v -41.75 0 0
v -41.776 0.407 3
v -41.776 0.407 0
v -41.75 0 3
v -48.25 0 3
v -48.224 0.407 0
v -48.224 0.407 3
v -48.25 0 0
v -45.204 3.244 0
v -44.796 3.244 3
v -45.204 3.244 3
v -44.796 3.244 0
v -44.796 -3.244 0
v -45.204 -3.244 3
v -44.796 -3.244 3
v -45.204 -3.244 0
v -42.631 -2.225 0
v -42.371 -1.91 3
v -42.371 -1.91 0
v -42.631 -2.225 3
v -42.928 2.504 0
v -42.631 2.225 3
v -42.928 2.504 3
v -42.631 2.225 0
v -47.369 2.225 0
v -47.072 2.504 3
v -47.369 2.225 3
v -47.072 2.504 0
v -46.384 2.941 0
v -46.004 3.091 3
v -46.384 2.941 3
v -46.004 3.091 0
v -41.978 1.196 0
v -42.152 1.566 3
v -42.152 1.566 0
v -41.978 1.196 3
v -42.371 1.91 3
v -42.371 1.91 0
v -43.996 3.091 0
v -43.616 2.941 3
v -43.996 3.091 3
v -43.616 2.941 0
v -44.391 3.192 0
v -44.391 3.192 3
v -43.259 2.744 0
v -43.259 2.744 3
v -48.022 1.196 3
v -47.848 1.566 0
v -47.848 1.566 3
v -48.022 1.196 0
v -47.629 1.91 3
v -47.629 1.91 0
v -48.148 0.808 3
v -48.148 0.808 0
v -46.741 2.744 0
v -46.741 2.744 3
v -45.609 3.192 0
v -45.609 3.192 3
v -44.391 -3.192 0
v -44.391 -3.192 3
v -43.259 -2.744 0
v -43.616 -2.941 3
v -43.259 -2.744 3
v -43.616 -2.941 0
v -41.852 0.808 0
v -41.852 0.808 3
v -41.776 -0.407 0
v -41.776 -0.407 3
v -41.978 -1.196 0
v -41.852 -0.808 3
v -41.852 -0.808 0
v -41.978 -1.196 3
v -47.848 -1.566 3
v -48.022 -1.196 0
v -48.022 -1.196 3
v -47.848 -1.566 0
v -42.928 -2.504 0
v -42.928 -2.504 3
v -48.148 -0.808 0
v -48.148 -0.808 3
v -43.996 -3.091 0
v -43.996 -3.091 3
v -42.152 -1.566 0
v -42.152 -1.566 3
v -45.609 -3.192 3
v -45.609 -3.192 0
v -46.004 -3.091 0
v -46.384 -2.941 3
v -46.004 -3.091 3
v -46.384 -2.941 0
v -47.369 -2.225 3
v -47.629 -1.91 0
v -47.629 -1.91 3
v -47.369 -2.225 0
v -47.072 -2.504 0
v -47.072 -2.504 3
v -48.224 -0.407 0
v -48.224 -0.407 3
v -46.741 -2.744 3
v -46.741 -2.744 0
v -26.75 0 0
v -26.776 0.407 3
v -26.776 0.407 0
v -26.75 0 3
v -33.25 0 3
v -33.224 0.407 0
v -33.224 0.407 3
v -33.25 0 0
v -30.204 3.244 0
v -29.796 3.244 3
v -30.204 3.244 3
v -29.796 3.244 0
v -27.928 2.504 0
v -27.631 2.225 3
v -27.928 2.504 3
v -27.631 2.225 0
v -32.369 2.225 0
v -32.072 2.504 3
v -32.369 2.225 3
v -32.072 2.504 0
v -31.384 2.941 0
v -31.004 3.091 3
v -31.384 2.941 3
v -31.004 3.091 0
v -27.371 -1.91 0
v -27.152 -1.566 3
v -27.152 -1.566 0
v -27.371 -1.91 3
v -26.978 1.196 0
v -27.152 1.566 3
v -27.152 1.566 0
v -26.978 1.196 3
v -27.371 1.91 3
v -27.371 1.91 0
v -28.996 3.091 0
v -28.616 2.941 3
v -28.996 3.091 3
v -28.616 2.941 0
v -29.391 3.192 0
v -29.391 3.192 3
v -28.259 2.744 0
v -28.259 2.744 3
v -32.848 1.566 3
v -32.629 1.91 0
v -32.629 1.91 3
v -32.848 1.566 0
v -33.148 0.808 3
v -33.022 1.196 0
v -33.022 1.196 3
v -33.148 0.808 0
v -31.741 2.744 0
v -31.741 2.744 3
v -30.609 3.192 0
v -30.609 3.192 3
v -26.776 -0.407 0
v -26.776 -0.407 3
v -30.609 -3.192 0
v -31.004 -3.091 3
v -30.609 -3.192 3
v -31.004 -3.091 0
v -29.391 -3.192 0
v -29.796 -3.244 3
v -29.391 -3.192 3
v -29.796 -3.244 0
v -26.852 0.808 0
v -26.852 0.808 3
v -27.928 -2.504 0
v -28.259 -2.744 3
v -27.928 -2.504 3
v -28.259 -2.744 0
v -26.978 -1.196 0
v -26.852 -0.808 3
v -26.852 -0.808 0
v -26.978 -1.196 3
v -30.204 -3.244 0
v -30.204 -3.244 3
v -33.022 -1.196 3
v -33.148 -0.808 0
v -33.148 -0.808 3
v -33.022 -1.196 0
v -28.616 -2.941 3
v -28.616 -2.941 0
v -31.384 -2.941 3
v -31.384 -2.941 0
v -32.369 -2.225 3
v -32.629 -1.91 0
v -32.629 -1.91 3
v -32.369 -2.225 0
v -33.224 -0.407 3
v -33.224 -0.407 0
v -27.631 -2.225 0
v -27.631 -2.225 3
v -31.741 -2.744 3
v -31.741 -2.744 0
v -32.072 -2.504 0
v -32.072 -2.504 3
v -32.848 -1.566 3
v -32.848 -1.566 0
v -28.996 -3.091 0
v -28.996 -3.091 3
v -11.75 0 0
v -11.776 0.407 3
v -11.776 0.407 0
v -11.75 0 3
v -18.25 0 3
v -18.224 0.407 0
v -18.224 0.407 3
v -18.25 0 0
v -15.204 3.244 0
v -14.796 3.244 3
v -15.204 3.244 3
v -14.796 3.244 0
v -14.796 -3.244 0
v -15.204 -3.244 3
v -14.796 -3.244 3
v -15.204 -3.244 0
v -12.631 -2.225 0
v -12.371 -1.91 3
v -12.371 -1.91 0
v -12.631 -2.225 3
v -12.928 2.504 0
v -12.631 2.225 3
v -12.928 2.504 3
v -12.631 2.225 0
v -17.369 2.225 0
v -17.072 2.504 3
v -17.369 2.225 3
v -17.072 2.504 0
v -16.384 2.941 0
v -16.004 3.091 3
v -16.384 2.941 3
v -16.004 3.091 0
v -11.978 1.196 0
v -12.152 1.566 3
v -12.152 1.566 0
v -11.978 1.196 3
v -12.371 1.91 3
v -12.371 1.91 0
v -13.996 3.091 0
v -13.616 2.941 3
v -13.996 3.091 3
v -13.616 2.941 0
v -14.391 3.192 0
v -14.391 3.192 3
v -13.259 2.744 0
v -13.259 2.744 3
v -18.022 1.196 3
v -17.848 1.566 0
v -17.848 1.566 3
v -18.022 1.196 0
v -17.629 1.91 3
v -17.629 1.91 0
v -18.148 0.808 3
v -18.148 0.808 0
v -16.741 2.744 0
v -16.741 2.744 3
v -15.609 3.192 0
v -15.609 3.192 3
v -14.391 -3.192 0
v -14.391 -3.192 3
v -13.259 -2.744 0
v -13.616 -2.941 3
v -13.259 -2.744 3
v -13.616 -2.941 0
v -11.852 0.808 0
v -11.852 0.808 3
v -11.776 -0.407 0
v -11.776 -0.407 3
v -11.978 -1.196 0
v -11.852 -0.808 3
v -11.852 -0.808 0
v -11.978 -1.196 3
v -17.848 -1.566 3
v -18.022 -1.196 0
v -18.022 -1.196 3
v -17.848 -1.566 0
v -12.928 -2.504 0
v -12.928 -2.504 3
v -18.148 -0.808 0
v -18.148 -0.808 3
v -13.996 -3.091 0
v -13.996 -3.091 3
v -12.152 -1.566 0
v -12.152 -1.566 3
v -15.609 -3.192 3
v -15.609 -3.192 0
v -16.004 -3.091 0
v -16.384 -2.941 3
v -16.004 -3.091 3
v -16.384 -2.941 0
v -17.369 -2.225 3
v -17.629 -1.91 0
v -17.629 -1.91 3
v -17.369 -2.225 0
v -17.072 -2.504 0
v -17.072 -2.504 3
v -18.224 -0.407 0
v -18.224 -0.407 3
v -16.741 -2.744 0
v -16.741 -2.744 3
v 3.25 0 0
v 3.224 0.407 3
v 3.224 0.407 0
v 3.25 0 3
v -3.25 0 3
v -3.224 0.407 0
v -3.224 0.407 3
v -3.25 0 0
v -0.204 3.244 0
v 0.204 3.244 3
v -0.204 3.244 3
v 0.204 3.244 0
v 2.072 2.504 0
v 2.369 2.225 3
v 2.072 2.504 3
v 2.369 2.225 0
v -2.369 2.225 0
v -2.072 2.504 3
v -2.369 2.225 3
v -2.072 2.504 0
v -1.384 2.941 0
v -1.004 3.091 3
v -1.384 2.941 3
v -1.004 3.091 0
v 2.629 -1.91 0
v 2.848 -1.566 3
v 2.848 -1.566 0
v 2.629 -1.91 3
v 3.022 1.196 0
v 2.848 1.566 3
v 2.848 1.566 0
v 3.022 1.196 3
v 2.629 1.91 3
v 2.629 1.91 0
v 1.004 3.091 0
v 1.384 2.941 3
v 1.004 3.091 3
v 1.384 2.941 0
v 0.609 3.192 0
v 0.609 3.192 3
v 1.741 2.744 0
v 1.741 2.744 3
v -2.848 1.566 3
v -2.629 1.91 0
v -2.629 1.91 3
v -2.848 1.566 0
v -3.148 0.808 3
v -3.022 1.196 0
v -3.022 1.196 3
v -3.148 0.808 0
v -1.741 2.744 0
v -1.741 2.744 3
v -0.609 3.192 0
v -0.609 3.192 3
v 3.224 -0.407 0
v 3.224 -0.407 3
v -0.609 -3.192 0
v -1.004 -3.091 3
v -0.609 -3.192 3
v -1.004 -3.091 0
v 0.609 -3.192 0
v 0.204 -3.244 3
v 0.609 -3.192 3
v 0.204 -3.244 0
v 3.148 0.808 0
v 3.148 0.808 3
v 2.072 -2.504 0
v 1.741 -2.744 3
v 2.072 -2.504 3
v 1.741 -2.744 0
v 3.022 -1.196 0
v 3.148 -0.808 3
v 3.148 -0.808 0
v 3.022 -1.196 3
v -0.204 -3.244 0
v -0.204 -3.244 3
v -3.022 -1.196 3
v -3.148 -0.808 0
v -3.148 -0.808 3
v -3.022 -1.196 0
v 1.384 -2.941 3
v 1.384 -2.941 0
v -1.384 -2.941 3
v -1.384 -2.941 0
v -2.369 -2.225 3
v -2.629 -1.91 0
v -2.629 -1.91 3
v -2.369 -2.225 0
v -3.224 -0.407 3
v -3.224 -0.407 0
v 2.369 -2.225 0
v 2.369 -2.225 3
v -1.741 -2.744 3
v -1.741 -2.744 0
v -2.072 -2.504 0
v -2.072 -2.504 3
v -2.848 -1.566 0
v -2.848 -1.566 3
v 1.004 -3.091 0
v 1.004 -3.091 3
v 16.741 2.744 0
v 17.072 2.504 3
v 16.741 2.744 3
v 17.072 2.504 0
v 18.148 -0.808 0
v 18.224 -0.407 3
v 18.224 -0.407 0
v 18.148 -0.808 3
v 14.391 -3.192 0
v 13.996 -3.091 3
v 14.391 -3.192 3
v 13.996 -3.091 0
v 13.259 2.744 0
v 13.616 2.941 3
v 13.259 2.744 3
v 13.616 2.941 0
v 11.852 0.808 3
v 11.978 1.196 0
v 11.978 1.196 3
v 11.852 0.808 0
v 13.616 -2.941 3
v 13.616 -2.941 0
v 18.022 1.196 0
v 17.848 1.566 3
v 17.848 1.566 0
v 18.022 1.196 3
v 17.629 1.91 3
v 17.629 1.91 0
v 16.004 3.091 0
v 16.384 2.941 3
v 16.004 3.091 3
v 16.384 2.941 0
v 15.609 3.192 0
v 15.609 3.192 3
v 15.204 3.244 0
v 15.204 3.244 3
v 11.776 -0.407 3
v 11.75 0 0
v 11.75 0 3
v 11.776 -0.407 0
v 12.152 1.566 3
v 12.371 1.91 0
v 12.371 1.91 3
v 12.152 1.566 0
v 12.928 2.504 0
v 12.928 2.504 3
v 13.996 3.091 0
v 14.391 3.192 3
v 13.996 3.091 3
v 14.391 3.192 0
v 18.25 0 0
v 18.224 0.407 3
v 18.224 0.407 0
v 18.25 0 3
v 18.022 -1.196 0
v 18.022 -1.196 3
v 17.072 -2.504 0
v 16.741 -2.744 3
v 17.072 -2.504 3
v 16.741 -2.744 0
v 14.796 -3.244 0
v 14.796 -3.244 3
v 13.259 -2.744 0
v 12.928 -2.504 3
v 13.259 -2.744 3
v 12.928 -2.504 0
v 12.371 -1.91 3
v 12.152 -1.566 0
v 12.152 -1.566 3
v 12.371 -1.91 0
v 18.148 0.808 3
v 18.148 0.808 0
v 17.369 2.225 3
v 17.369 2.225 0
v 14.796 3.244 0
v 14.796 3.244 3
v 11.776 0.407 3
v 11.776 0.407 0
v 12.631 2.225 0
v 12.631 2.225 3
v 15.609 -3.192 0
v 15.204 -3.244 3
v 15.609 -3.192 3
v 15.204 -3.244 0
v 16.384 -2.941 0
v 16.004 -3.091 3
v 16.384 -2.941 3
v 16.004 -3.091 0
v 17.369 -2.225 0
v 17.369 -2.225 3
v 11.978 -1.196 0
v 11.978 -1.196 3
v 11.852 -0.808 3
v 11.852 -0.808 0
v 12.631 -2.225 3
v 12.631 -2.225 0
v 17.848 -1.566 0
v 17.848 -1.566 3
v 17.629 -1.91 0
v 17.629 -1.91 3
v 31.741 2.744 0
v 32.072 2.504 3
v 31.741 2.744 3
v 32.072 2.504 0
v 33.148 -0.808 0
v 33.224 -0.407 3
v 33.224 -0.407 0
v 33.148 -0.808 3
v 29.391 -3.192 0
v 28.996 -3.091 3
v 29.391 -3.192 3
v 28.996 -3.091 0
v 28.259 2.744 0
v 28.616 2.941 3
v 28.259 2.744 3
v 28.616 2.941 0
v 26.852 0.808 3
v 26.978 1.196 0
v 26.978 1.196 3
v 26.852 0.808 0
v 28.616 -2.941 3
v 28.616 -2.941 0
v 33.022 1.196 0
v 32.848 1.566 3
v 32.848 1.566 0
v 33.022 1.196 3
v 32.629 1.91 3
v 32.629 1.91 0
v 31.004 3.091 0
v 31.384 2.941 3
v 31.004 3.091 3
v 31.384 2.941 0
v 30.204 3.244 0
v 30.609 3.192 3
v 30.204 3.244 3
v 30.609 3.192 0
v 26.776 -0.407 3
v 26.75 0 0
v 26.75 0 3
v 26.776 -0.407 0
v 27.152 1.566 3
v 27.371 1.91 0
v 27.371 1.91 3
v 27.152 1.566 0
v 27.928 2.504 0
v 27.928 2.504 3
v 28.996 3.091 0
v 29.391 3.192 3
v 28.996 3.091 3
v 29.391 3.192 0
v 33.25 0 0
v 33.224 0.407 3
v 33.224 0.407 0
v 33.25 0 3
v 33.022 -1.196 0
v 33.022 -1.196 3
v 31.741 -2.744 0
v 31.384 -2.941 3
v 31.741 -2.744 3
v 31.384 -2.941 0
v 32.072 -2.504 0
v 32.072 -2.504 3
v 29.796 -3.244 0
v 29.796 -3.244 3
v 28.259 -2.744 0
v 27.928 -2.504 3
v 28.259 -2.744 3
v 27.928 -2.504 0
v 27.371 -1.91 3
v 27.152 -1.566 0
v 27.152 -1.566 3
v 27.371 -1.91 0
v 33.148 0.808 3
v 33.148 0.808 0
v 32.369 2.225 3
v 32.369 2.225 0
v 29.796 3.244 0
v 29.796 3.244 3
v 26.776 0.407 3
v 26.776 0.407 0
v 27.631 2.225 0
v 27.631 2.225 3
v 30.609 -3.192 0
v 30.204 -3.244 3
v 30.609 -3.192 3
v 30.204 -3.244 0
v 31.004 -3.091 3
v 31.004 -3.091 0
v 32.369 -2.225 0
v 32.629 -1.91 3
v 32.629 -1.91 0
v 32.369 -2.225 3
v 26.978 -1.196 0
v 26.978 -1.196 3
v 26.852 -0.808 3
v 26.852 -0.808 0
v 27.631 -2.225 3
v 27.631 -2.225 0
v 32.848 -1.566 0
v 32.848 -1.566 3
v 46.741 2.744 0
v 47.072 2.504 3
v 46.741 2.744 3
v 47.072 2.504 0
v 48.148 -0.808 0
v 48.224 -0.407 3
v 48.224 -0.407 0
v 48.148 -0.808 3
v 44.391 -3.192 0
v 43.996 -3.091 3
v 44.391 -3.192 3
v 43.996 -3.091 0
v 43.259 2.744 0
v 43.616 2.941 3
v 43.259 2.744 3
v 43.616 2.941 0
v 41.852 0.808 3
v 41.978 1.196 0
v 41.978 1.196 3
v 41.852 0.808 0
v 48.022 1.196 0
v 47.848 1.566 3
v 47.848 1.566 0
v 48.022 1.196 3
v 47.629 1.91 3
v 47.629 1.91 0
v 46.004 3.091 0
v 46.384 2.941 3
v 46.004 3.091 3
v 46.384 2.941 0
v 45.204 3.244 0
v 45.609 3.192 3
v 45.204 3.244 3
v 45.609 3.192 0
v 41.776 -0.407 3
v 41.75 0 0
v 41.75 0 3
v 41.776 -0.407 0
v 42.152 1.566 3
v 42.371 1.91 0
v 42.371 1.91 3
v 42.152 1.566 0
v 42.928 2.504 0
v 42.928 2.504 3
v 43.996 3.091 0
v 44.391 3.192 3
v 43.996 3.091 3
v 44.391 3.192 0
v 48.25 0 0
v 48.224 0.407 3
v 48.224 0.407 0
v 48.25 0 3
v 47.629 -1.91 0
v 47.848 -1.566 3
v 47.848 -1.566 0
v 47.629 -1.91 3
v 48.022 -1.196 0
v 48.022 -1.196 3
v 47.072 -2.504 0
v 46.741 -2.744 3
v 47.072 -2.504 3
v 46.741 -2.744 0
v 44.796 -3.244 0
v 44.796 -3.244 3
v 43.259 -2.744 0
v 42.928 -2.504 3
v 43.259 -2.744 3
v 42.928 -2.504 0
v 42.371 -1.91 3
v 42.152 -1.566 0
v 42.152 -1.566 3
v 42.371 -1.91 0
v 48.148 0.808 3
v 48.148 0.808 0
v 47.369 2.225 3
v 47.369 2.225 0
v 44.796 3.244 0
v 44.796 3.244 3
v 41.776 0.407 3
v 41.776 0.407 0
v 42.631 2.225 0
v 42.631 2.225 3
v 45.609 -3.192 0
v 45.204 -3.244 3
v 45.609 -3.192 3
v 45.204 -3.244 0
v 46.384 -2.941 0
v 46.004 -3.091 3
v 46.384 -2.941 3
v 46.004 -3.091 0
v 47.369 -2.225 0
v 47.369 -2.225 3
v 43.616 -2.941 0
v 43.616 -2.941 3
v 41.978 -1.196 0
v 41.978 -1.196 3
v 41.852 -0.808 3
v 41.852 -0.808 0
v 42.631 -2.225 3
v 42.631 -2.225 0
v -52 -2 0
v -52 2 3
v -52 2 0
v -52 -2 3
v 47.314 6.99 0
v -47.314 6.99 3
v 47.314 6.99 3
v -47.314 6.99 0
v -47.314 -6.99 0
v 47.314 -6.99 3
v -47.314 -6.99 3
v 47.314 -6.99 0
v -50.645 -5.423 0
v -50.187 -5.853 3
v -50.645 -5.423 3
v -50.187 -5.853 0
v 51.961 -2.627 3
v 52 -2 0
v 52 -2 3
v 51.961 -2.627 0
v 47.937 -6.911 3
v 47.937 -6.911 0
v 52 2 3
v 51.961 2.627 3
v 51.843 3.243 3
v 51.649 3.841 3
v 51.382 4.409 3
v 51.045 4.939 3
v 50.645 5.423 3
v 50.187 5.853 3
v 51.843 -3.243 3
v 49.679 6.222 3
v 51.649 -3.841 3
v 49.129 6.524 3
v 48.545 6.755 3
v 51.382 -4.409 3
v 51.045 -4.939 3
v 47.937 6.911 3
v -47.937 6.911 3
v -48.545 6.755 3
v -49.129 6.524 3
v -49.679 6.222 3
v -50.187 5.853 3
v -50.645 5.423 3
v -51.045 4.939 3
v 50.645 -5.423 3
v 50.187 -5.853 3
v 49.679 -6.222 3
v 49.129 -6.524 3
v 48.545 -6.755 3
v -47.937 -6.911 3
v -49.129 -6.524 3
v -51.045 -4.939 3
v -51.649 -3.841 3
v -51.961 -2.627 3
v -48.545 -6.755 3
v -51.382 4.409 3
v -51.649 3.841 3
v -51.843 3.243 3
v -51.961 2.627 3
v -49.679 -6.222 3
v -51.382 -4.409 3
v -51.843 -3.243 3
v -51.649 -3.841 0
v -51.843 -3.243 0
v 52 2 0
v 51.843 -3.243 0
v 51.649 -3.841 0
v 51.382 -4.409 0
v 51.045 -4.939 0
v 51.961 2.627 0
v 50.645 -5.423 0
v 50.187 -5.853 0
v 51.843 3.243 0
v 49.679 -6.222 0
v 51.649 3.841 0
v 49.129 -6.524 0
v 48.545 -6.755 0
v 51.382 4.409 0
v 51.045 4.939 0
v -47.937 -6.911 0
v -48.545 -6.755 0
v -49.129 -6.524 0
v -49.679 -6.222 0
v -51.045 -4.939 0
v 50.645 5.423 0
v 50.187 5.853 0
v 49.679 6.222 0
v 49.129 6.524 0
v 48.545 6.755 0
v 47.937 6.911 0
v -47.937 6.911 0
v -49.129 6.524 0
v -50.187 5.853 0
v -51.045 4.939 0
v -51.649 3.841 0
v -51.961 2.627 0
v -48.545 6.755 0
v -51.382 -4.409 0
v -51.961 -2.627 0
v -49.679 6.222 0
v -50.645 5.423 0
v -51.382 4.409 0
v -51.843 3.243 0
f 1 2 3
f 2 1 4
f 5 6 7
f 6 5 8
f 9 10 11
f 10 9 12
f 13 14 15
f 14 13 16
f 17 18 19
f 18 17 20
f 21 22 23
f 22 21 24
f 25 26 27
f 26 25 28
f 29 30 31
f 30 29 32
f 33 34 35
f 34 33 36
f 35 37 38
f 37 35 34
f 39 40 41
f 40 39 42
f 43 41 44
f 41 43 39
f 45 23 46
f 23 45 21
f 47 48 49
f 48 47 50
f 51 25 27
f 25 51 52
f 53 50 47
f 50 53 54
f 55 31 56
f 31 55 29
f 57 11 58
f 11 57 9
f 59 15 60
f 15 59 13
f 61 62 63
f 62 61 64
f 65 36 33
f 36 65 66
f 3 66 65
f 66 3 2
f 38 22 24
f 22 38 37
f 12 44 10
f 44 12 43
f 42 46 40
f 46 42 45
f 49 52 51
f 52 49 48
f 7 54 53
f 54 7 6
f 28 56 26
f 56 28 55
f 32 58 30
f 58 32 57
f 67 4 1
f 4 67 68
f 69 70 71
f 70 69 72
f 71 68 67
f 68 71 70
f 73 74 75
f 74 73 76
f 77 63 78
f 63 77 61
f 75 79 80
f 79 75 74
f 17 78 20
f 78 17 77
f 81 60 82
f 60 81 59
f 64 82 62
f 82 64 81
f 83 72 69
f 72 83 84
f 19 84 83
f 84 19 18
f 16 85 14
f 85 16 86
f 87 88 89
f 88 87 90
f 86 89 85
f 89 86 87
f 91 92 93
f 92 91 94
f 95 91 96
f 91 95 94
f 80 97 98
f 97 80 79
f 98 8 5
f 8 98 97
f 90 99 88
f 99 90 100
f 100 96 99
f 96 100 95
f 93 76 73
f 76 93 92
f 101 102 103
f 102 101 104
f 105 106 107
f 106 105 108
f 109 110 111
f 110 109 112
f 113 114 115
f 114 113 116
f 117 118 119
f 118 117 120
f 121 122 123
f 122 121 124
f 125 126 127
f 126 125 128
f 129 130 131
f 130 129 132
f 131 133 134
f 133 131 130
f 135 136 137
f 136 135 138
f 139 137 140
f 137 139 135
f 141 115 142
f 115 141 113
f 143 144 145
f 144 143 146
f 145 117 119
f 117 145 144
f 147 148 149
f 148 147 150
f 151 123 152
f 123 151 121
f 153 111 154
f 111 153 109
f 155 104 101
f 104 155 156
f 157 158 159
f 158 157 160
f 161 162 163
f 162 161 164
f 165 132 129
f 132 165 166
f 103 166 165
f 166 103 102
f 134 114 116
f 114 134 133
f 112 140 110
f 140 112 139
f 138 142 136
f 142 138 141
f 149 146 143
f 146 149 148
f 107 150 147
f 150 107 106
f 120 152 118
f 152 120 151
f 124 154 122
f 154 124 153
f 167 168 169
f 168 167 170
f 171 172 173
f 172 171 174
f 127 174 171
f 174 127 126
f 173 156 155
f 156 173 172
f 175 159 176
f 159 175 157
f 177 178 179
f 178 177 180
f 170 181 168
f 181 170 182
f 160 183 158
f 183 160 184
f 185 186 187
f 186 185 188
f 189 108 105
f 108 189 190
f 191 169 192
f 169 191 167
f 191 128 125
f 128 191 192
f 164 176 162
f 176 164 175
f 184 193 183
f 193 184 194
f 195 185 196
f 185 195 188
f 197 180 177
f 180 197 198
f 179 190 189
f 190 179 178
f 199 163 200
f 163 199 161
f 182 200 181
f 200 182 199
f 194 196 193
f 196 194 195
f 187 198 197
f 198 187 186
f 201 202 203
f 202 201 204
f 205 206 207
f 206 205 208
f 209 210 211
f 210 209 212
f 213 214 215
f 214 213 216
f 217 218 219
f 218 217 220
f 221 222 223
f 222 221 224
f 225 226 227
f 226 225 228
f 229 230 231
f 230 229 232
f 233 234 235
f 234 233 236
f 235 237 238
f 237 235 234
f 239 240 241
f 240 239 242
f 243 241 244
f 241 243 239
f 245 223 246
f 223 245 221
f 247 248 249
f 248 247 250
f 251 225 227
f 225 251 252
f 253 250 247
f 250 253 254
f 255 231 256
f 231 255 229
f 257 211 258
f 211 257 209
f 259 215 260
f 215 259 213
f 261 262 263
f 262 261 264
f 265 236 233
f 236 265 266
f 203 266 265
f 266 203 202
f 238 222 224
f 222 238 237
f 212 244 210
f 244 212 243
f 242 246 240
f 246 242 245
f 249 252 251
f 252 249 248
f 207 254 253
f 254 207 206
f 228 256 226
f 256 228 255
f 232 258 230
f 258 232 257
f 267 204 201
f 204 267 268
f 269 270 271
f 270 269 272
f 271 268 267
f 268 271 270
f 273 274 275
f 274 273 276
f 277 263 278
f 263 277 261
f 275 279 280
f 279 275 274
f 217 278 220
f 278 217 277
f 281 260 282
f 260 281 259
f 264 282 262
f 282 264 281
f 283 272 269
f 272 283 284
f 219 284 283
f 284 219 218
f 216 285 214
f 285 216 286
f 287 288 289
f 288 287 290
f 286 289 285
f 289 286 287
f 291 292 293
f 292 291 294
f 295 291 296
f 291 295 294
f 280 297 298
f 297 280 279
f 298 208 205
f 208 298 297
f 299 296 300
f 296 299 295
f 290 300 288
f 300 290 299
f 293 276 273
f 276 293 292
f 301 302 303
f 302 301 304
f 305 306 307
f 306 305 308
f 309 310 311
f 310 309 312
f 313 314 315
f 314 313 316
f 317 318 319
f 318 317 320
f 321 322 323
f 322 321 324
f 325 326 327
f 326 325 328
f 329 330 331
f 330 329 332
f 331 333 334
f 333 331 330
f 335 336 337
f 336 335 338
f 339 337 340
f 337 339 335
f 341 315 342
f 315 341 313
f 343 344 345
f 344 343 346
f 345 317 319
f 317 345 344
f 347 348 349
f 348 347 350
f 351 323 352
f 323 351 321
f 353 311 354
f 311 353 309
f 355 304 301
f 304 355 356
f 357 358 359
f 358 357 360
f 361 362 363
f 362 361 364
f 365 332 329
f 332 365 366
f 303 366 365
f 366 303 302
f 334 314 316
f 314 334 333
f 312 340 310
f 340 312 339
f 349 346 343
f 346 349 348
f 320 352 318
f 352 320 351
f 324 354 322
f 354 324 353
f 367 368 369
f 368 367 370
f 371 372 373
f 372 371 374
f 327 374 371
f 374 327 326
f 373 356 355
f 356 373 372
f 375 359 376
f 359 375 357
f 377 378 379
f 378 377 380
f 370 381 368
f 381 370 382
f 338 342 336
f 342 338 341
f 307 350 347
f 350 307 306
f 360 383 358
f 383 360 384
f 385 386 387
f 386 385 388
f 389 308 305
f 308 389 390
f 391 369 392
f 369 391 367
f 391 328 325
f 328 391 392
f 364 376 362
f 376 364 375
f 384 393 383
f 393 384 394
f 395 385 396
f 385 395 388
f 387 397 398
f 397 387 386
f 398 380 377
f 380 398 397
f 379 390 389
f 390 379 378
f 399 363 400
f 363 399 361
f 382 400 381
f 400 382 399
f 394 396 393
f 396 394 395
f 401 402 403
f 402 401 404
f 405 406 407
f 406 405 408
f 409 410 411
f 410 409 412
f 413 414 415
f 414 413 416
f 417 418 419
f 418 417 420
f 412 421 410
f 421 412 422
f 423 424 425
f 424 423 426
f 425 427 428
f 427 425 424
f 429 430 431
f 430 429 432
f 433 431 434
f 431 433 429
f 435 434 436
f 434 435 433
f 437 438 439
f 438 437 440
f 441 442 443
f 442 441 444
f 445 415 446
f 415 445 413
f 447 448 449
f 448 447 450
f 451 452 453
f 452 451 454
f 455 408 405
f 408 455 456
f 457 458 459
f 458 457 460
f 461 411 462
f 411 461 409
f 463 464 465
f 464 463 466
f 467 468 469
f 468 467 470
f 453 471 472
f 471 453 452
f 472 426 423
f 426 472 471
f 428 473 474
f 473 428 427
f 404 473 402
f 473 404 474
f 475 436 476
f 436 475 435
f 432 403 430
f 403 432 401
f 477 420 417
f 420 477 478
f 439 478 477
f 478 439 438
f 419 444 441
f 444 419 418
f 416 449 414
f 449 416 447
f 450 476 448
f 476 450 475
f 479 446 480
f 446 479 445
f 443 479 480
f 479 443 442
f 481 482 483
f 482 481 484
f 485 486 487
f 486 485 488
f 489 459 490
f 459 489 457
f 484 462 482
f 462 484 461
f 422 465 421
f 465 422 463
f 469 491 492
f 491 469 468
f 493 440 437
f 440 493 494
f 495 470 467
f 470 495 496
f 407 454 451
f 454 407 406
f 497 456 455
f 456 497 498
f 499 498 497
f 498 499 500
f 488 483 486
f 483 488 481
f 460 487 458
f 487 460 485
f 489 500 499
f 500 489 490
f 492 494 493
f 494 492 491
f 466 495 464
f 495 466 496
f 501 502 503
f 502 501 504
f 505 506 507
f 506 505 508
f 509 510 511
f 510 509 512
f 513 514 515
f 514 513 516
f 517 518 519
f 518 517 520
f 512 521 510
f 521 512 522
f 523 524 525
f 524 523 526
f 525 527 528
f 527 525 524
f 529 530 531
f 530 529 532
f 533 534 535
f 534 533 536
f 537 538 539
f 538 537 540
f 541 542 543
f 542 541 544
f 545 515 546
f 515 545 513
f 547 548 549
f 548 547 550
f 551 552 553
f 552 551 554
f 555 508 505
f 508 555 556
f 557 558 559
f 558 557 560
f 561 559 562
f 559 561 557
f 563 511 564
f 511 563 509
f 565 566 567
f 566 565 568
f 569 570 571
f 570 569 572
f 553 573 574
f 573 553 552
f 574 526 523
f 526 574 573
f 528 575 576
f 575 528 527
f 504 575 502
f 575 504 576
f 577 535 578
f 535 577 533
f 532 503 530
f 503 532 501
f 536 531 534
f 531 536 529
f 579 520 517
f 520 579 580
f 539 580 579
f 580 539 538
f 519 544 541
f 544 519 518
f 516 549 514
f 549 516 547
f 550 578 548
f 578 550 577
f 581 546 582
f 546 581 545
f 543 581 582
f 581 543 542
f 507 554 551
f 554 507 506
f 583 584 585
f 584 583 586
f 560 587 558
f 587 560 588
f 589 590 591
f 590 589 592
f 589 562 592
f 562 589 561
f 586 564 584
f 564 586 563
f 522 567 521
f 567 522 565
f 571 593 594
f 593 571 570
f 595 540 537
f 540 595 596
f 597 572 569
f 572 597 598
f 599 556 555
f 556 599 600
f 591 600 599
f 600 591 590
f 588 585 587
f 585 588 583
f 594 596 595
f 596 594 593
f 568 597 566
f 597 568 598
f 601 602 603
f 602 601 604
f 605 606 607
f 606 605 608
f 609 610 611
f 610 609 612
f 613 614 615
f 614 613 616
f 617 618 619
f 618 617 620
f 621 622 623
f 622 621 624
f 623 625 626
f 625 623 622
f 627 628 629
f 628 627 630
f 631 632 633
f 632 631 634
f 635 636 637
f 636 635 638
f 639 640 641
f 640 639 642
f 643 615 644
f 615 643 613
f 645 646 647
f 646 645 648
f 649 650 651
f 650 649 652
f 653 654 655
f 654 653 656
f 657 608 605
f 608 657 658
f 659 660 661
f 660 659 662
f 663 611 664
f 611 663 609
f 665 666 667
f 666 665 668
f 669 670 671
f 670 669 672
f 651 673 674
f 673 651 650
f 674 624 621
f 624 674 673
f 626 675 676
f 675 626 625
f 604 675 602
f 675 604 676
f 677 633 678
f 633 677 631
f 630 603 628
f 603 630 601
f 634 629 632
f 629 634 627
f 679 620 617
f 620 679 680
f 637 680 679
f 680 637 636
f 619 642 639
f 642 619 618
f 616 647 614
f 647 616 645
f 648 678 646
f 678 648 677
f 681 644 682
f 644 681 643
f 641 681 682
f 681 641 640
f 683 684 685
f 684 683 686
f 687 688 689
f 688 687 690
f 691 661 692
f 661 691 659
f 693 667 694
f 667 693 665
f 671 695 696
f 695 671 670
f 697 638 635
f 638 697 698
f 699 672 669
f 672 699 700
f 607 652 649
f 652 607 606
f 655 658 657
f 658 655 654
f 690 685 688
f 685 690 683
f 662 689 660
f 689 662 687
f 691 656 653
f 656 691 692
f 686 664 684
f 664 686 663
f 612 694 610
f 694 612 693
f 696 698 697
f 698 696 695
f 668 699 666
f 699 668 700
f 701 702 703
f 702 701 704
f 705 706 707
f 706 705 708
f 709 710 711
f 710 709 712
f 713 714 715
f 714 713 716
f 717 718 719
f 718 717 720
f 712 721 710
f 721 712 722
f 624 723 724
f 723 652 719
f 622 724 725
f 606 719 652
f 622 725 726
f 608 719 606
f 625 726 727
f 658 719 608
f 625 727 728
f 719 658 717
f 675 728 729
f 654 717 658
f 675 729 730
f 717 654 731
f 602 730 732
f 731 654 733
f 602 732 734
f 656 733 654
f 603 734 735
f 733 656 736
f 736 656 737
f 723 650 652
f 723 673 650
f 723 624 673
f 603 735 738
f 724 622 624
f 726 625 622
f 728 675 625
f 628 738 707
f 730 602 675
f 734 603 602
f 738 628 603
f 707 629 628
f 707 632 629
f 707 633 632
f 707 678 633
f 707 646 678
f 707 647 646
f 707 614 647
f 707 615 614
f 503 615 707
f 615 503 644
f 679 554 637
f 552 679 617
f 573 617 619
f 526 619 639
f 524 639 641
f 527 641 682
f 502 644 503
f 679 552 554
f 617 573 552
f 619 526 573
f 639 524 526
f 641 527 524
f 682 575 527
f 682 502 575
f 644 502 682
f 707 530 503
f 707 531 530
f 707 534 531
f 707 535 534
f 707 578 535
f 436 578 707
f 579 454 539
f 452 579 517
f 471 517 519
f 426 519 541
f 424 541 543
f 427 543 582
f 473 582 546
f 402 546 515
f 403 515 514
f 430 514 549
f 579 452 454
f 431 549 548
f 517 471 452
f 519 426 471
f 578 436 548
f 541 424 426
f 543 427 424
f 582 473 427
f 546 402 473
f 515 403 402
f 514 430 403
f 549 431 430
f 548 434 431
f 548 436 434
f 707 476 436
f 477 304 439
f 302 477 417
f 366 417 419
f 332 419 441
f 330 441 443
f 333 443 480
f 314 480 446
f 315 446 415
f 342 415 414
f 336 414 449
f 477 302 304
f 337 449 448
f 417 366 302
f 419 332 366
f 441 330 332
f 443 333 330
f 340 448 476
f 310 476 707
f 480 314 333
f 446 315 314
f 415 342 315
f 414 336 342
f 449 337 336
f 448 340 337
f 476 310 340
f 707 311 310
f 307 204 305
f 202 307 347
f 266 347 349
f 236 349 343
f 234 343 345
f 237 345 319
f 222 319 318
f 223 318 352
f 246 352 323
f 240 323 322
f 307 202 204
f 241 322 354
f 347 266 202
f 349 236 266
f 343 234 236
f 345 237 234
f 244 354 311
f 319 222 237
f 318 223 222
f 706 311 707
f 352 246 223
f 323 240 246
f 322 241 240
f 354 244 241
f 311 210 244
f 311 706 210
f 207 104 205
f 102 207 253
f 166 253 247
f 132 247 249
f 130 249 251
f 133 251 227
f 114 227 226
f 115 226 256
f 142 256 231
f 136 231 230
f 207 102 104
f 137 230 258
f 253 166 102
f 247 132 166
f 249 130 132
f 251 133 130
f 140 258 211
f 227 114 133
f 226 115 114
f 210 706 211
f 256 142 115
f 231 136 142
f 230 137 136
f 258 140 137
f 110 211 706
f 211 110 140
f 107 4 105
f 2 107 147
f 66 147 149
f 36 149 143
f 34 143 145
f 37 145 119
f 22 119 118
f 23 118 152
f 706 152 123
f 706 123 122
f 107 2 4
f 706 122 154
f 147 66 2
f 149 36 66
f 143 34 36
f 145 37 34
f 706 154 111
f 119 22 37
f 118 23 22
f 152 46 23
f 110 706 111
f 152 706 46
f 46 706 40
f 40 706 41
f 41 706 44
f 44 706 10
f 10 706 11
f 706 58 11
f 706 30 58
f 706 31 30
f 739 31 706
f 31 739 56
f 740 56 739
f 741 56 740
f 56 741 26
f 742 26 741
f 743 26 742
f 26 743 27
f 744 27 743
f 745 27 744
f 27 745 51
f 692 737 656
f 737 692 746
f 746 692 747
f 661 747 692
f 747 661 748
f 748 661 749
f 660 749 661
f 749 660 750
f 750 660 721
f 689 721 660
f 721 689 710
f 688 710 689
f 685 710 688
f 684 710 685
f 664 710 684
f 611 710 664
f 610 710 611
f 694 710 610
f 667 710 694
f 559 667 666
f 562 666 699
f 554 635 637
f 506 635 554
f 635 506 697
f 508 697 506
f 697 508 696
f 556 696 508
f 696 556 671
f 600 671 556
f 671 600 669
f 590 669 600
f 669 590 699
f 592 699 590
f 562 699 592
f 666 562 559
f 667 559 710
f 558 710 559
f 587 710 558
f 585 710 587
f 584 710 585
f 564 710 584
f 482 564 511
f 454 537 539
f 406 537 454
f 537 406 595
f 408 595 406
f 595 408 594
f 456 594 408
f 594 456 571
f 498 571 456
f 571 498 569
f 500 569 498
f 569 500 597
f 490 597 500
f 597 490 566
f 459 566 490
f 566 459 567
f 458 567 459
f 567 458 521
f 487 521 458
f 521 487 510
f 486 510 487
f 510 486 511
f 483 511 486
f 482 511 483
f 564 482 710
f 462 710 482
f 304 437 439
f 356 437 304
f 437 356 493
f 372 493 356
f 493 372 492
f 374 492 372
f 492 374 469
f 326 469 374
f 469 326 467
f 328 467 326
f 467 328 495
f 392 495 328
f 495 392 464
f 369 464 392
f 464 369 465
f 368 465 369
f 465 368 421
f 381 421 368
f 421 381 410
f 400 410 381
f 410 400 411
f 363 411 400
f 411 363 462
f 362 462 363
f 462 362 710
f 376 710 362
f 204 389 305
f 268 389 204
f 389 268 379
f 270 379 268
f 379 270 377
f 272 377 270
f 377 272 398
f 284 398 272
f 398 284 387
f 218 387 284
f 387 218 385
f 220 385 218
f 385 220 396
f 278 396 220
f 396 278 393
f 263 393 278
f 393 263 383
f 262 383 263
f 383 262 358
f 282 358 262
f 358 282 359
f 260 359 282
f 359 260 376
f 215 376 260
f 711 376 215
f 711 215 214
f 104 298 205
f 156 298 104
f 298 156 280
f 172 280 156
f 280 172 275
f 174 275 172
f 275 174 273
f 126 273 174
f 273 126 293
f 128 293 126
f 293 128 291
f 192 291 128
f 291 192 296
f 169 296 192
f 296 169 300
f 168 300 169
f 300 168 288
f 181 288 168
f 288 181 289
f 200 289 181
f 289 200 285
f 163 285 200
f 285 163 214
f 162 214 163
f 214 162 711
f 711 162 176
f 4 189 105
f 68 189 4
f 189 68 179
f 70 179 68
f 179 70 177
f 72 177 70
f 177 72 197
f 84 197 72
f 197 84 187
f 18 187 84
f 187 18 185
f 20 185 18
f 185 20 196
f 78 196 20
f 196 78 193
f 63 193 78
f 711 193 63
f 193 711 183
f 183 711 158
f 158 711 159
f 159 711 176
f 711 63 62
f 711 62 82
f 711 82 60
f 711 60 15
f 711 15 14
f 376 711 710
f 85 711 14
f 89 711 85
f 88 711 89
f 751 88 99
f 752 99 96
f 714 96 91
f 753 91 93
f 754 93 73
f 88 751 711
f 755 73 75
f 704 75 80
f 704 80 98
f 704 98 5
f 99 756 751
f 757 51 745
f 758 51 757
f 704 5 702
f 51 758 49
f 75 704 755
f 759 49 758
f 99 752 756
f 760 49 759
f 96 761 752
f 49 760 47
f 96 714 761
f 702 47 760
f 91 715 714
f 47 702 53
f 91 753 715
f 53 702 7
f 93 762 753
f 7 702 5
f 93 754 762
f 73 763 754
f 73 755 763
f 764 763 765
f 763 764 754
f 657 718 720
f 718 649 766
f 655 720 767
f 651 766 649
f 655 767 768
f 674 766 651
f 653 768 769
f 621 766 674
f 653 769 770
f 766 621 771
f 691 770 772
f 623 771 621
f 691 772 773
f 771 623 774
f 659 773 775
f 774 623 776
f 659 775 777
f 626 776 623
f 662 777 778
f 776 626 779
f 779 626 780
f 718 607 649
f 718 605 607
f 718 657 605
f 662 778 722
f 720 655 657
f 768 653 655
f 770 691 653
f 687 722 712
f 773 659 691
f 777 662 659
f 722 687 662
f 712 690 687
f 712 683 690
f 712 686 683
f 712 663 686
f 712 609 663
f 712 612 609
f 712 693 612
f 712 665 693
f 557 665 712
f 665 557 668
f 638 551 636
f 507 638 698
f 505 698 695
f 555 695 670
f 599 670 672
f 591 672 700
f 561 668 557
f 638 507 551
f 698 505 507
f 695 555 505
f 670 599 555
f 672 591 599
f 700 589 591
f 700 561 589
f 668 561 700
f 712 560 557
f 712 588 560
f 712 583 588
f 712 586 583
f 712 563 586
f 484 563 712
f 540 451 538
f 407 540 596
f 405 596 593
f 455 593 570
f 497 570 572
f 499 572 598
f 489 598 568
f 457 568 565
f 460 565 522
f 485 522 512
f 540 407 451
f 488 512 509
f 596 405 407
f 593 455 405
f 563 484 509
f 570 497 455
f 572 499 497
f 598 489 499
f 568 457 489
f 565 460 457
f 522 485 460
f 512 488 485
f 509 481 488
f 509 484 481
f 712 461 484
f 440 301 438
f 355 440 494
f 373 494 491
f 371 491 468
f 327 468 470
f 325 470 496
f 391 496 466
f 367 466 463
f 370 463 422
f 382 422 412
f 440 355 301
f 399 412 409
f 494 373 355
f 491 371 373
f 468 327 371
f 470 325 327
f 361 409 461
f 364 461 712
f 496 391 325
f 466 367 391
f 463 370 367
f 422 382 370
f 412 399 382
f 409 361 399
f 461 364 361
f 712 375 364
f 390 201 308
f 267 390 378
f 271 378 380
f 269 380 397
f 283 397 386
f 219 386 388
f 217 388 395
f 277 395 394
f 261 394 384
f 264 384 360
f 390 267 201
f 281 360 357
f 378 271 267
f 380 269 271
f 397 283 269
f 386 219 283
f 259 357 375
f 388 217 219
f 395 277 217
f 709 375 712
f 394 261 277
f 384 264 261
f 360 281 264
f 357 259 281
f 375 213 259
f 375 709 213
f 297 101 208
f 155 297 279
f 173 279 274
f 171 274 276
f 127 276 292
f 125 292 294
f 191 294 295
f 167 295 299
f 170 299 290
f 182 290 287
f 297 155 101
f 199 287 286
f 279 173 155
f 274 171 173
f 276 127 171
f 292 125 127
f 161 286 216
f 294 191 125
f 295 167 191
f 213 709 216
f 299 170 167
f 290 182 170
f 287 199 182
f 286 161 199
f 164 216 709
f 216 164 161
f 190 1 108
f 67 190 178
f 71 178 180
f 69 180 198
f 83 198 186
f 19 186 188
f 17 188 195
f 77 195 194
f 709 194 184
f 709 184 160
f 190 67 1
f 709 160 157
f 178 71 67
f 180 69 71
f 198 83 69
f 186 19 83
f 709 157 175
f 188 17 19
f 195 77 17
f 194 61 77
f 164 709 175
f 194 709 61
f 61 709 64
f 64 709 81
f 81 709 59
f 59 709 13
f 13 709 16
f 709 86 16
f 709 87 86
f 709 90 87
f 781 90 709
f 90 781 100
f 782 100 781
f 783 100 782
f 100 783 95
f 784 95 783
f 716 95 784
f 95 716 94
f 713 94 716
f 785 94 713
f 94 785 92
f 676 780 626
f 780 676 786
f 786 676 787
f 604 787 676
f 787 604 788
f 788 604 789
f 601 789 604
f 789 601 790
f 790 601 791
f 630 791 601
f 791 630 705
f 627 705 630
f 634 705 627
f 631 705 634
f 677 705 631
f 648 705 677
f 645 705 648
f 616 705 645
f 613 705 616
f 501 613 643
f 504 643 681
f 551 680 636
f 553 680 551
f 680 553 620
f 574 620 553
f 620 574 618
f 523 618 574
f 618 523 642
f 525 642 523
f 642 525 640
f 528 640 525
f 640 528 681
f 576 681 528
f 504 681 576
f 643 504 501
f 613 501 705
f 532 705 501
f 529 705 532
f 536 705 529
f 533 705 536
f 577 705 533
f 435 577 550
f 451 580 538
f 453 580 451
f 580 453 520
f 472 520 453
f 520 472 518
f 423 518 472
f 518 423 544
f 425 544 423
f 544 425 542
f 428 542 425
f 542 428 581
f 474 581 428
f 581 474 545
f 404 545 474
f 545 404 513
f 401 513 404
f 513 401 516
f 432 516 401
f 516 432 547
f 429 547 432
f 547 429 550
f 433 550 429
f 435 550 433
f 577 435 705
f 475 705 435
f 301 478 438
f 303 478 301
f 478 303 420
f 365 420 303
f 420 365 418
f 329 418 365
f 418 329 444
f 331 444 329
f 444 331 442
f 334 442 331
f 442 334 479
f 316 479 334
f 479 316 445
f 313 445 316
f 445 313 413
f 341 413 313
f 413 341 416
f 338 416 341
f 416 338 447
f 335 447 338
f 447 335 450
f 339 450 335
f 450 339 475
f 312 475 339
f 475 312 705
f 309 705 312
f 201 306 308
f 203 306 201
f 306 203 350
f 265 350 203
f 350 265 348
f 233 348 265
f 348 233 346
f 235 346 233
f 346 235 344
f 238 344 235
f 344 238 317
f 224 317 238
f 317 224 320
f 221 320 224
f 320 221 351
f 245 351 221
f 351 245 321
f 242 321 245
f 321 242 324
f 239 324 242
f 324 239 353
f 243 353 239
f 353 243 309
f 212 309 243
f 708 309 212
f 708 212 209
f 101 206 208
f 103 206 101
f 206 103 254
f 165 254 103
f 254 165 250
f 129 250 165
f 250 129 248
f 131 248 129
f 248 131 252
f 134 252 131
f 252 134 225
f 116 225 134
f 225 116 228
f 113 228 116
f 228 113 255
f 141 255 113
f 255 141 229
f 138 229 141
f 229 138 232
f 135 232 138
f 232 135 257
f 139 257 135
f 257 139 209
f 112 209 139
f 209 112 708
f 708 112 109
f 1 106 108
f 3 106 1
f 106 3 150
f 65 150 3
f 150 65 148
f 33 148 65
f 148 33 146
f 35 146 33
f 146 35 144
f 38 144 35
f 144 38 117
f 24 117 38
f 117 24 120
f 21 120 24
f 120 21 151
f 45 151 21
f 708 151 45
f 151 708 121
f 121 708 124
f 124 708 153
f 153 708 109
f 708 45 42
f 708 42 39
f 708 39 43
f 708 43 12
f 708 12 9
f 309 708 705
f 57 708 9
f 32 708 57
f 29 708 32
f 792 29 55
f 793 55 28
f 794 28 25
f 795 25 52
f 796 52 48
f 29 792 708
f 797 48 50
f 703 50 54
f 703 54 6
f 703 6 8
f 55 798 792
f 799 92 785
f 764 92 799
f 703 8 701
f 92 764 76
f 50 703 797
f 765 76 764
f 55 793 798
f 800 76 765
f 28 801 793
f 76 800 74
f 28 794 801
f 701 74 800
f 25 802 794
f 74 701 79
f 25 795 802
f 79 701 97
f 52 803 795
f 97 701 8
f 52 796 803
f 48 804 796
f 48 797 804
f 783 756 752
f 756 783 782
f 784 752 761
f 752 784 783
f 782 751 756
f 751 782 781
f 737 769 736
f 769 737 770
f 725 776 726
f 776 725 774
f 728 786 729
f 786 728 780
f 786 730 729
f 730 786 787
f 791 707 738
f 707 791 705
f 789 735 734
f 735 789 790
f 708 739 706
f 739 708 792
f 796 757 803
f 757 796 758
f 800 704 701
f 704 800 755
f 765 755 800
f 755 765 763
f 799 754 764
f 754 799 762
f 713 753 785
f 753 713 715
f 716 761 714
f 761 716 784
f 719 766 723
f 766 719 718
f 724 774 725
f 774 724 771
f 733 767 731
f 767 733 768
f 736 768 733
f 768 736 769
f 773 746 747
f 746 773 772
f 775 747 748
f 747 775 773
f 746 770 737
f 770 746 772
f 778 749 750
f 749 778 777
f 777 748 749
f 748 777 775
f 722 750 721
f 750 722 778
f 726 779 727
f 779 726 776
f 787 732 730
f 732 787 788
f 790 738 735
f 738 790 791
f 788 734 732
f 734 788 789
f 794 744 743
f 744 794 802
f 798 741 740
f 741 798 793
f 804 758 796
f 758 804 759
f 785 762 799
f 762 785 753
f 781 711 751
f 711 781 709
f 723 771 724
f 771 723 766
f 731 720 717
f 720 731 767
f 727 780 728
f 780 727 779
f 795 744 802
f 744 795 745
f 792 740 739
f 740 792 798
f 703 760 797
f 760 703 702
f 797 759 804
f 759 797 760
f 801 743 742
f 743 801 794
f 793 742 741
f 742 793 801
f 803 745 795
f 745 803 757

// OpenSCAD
$fn = 50;


difference() {
	union() {
		translate(v = [0, 0, 0]) {
			rotate(a = [0, 0, 0]) {
				hull() {
					translate(v = [-47.0000000000, 2.0000000000, 0]) {
						rotate(a = [0, 0, 0]) {
							translate(v = [0, 0, 0]) {
								rotate(a = [0, 0, 0]) {
									cylinder(h = 3, r = 5);
								}
							}
						}
					}
					translate(v = [47.0000000000, 2.0000000000, 0]) {
						rotate(a = [0, 0, 0]) {
							translate(v = [0, 0, 0]) {
								rotate(a = [0, 0, 0]) {
									cylinder(h = 3, r = 5);
								}
							}
						}
					}
					translate(v = [-47.0000000000, -2.0000000000, 0]) {
						rotate(a = [0, 0, 0]) {
							translate(v = [0, 0, 0]) {
								rotate(a = [0, 0, 0]) {
									cylinder(h = 3, r = 5);
								}
							}
						}
					}
					translate(v = [47.0000000000, -2.0000000000, 0]) {
						rotate(a = [0, 0, 0]) {
							translate(v = [0, 0, 0]) {
								rotate(a = [0, 0, 0]) {
									cylinder(h = 3, r = 5);
								}
							}
						}
					}
				}
			}
		}
	}
	union() {
		translate(v = [-45.0000000000, 0.0000000000, 0]) {
			rotate(a = [0, 0, 0]) {
				translate(v = [0, 0, -50]) {
					rotate(a = [0, 0, 0]) {
						cylinder(h = 100, r = 3.2500000000);
					}
				}
			}
		}
		translate(v = [-30.0000000000, 0.0000000000, 0]) {
			rotate(a = [0, 0, 0]) {
				translate(v = [0, 0, -50]) {
					rotate(a = [0, 0, 0]) {
						cylinder(h = 100, r = 3.2500000000);
					}
				}
			}
		}
		translate(v = [-15.0000000000, 0.0000000000, 0]) {
			rotate(a = [0, 0, 0]) {
				translate(v = [0, 0, -50]) {
					rotate(a = [0, 0, 0]) {
						cylinder(h = 100, r = 3.2500000000);
					}
				}
			}
		}
		translate(v = [0.0000000000, 0.0000000000, 0]) {
			rotate(a = [0, 0, 0]) {
				translate(v = [0, 0, -50]) {
					rotate(a = [0, 0, 0]) {
						cylinder(h = 100, r = 3.2500000000);
					}
				}
			}
		}
		translate(v = [15.0000000000, 0.0000000000, 0]) {
			rotate(a = [0, 0, 0]) {
				translate(v = [0, 0, -50]) {
					rotate(a = [0, 0, 0]) {
						cylinder(h = 100, r = 3.2500000000);
					}
				}
			}
		}
		translate(v = [30.0000000000, 0.0000000000, 0]) {
			rotate(a = [0, 0, 0]) {
				translate(v = [0, 0, -50]) {
					rotate(a = [0, 0, 0]) {
						cylinder(h = 100, r = 3.2500000000);
					}
				}
			}
		}
		translate(v = [45.0000000000, 0.0000000000, 0]) {
			rotate(a = [0, 0, 0]) {
				translate(v = [0, 0, -50]) {
					rotate(a = [0, 0, 0]) {
						cylinder(h = 100, r = 3.2500000000);
					}
				}
			}
		}
	}
}
